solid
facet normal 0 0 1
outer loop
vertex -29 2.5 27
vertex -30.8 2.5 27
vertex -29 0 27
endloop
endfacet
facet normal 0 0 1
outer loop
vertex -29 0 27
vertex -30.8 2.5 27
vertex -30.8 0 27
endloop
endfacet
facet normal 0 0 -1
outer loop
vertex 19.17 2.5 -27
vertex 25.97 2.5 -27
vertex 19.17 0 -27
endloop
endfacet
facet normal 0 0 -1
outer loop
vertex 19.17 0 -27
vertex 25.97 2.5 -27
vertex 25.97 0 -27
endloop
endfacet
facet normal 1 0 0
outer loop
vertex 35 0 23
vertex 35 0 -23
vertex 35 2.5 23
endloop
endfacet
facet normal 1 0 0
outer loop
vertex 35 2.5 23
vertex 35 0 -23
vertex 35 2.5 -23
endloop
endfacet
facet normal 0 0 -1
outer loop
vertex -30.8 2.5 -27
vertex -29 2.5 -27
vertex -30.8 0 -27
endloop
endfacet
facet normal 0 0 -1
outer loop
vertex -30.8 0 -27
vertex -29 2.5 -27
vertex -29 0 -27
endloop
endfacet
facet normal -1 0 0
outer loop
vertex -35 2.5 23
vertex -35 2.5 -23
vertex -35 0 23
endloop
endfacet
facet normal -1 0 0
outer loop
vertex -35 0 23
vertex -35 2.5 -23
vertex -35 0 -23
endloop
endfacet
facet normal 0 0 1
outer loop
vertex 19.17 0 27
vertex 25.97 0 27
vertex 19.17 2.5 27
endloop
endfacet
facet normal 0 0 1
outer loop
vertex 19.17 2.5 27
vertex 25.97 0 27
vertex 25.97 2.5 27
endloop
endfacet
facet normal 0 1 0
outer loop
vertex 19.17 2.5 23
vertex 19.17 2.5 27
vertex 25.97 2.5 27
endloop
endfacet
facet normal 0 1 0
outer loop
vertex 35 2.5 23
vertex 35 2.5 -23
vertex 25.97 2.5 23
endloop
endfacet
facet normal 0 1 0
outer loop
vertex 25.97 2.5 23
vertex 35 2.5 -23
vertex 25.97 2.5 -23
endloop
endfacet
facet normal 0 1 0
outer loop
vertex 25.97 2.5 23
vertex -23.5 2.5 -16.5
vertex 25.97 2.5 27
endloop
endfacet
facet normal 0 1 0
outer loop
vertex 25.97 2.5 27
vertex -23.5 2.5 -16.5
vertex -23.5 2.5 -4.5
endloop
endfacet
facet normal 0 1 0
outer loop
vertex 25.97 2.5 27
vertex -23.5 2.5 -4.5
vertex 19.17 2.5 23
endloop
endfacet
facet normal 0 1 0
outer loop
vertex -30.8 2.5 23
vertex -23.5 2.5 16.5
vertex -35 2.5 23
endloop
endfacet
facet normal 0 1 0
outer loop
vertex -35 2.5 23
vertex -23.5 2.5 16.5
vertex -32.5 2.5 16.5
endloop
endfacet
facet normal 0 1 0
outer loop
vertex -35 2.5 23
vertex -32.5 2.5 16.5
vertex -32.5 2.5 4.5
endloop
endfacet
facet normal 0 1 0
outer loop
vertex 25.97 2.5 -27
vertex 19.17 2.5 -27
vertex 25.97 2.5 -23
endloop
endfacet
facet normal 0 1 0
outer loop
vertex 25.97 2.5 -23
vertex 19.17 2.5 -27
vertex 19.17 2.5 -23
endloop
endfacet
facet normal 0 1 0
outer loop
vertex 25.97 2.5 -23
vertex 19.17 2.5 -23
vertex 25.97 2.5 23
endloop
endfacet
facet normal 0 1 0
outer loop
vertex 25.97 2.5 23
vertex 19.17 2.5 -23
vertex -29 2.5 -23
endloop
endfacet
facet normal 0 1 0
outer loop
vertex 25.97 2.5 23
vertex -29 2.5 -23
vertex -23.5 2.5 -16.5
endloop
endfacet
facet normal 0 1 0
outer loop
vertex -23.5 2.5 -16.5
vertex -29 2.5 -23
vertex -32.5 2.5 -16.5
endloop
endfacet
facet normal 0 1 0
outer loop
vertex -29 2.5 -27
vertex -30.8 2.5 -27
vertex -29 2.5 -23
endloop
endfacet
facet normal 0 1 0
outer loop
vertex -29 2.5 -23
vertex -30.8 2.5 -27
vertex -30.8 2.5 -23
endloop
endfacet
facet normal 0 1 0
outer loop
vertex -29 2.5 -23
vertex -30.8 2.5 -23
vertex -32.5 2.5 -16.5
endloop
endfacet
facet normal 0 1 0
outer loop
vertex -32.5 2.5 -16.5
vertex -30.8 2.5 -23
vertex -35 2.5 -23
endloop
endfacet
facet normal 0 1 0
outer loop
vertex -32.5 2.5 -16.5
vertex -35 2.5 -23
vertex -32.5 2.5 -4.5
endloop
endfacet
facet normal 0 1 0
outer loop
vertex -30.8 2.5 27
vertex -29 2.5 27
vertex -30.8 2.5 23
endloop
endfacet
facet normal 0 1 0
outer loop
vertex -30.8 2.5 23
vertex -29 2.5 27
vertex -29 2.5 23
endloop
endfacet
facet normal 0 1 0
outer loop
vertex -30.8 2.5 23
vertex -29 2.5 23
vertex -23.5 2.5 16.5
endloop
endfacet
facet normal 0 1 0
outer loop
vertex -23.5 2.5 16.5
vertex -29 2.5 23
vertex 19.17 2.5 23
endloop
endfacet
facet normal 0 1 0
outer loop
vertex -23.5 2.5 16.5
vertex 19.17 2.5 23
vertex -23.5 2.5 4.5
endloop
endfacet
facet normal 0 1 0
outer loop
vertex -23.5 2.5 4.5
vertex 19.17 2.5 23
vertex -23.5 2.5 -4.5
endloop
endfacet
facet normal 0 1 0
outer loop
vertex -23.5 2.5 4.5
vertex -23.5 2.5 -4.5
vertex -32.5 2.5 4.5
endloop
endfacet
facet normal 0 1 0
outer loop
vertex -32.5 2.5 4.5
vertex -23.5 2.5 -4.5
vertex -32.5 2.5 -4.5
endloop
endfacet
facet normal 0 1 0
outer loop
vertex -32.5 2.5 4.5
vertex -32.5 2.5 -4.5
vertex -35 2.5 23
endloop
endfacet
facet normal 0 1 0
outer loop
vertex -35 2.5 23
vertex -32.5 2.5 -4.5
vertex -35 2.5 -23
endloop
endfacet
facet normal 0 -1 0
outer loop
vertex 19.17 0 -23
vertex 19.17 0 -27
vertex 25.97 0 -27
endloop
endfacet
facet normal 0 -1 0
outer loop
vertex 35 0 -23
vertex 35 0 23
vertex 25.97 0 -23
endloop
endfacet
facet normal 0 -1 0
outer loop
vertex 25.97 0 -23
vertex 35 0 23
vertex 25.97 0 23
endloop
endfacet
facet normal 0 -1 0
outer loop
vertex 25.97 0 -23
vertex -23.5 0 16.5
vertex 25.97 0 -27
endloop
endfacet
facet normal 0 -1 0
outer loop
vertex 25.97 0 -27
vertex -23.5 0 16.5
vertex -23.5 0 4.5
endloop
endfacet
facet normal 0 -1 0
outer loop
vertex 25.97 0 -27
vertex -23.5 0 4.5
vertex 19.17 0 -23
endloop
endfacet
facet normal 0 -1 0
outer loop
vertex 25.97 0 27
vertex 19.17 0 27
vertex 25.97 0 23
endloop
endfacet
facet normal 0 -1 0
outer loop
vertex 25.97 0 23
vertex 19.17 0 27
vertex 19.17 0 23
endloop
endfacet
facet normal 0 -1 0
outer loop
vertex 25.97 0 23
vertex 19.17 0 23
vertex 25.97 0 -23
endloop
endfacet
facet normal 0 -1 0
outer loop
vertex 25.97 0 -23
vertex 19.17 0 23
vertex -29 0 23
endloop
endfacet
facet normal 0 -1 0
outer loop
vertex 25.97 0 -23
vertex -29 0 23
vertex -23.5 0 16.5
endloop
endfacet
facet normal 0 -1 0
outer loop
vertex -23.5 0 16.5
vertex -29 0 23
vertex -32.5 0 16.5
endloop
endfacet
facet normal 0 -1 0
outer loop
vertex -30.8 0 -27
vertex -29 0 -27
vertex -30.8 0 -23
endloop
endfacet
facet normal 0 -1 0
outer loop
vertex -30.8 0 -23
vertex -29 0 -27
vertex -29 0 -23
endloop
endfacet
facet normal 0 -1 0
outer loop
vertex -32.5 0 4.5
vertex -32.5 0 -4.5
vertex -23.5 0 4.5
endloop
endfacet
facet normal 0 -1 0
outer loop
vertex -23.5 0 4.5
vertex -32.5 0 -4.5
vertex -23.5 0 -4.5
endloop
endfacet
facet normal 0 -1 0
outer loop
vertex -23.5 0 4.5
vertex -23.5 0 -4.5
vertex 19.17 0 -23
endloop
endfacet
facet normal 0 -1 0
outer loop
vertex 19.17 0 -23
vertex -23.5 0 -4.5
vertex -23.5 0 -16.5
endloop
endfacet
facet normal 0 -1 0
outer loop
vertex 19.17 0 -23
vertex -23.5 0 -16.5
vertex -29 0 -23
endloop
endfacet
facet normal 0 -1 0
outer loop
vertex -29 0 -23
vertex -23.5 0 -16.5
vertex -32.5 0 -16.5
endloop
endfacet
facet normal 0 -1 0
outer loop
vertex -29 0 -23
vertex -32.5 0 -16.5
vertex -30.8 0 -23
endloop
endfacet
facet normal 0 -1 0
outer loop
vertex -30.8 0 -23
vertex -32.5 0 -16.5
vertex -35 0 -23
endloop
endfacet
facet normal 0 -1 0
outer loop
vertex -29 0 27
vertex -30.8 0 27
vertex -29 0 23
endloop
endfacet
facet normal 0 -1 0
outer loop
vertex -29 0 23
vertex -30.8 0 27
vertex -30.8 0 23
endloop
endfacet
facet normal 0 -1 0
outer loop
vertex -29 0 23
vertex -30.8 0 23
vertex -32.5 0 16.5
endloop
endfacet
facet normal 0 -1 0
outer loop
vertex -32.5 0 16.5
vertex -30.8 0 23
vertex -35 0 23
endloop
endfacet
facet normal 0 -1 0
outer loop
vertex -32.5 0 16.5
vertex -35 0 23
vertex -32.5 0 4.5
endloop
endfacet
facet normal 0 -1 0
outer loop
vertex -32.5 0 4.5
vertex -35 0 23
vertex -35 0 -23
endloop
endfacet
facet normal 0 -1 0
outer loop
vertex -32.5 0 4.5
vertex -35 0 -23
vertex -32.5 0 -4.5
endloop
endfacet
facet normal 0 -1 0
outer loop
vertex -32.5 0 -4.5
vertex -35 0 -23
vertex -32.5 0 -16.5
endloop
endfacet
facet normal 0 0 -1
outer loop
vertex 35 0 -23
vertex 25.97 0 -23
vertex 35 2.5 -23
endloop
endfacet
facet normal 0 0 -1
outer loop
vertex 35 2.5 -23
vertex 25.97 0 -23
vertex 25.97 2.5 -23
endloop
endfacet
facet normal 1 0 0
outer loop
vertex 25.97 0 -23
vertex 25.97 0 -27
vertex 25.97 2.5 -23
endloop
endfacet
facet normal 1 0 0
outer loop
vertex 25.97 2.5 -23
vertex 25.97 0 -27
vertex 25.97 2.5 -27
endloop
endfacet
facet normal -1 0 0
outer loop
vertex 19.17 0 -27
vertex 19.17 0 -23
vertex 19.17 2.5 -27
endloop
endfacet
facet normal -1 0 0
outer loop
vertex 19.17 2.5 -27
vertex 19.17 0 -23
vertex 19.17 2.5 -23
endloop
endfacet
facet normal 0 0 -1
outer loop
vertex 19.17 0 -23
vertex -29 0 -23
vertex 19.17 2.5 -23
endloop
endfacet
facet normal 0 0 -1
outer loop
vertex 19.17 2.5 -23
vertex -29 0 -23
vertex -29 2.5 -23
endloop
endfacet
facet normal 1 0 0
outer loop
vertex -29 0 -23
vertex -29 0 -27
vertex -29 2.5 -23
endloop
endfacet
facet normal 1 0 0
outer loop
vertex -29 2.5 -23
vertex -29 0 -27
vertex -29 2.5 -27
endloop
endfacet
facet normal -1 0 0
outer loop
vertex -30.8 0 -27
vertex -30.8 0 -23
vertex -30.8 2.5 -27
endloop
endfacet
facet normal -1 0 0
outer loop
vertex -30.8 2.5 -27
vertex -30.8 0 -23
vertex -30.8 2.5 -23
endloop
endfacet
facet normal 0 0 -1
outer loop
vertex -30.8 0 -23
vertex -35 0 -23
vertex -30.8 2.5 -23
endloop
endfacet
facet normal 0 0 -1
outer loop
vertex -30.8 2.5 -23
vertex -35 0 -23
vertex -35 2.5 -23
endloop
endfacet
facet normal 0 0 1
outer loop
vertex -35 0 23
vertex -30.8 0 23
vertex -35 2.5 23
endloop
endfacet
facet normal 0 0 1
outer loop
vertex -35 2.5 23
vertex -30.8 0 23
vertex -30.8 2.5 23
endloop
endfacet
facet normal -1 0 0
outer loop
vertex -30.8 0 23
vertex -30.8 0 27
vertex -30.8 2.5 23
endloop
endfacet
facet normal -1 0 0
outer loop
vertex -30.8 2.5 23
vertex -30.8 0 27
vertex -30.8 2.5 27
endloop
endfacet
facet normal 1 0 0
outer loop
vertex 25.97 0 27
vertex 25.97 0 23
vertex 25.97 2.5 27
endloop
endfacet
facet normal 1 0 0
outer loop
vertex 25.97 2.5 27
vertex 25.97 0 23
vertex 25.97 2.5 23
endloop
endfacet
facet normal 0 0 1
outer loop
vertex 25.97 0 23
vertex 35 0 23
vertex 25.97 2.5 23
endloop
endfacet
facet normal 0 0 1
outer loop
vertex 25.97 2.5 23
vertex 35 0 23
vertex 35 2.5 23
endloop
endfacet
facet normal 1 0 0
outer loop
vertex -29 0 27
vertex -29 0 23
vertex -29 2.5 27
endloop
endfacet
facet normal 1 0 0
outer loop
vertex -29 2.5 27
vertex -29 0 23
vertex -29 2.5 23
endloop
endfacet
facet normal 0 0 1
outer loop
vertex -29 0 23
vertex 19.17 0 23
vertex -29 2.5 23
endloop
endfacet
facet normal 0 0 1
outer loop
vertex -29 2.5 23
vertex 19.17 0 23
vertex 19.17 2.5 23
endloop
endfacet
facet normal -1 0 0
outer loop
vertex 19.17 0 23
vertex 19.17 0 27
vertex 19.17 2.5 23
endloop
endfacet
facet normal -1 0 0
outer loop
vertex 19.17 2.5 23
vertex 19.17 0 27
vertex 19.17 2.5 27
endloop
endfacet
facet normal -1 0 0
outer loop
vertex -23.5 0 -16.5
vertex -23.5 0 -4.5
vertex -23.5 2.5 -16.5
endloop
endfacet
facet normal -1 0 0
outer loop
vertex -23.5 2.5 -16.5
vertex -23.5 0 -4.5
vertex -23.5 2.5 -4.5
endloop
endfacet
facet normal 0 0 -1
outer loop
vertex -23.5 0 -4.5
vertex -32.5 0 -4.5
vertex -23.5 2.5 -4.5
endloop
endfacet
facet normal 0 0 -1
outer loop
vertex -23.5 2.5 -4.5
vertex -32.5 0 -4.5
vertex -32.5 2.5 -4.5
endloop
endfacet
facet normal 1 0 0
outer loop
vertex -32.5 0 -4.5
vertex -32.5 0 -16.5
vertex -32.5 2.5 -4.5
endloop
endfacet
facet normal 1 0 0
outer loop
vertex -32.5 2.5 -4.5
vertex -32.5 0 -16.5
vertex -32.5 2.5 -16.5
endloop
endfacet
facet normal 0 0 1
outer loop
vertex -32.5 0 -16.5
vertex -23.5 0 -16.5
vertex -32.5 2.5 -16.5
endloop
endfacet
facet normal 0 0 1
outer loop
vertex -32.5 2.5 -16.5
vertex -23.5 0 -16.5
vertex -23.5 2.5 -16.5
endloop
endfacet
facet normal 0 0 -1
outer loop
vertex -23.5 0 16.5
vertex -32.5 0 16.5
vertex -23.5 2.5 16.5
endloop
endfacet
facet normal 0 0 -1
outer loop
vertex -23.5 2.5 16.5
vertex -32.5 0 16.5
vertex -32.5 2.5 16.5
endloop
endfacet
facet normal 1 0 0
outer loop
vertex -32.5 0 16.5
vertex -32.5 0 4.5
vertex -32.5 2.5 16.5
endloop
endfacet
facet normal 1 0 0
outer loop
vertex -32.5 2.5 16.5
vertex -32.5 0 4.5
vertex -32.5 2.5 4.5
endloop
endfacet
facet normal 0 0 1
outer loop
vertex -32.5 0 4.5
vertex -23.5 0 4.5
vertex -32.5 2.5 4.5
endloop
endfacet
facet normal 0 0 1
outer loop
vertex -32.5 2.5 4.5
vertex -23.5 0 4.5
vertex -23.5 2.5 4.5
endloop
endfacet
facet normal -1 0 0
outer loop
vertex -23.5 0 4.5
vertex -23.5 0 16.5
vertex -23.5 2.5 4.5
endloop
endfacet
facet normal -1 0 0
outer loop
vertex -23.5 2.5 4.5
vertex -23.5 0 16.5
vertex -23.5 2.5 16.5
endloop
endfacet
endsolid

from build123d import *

# Parameters (mm, degrees)
SKETCH_1_W          = 70
SKETCH_1_H          = 54
EXTRUDE_1_DEPTH     = 2.5
SKETCH_2_W          = 9.03
SKETCH_2_H          = 4
SKETCH_2_W_2        = 48.17
SKETCH_2_W_3        = 4.2
CUT_EXTRUDE_1_DEPTH = 3.5
SKETCH_3_W          = 9
SKETCH_3_H          = 12
CUT_EXTRUDE_2_DEPTH = 3.5


with BuildPart() as part:
    # 草图1 → 凸台-拉伸1 (new body)
    with BuildSketch(Plane(origin=(0, 0, 0), x_dir=(1, 0, 0), z_dir=(0, 1, 0))):
        Rectangle(SKETCH_1_W, SKETCH_1_H)
    extrude(amount=EXTRUDE_1_DEPTH)

    # 草图2 → 切除-拉伸1 (cut, through all)
    with BuildSketch(Plane(origin=(0, 2.5, 0), x_dir=(1, 0, 0), z_dir=(0, 1, 0))):
        with Locations((30.485, 25)):
            Rectangle(SKETCH_2_W, SKETCH_2_H)
        with Locations((-4.915, 25)):
            Rectangle(SKETCH_2_W_2, SKETCH_2_H)
        with Locations((-32.9, 25)):
            Rectangle(SKETCH_2_W_3, SKETCH_2_H)
        with Locations((-32.9, -25)):
            Rectangle(SKETCH_2_W_3, SKETCH_2_H)
        with Locations((30.485, -25)):
            Rectangle(SKETCH_2_W, SKETCH_2_H)
        with Locations((-4.915, -25)):
            Rectangle(SKETCH_2_W_2, SKETCH_2_H)
    extrude(amount=-CUT_EXTRUDE_1_DEPTH, mode=Mode.SUBTRACT)

    # 草图3 → 切除-拉伸2 (cut, through all)
    with BuildSketch(Plane(origin=(0, 2.5, 0), x_dir=(1, 0, 0), z_dir=(0, 1, 0))):
        with Locations((-28, 10.5)):
            Rectangle(SKETCH_3_W, SKETCH_3_H)
        with Locations((-28, -10.5)):
            Rectangle(SKETCH_3_W, SKETCH_3_H)
    extrude(amount=-CUT_EXTRUDE_2_DEPTH, mode=Mode.SUBTRACT)


solid = part.part
